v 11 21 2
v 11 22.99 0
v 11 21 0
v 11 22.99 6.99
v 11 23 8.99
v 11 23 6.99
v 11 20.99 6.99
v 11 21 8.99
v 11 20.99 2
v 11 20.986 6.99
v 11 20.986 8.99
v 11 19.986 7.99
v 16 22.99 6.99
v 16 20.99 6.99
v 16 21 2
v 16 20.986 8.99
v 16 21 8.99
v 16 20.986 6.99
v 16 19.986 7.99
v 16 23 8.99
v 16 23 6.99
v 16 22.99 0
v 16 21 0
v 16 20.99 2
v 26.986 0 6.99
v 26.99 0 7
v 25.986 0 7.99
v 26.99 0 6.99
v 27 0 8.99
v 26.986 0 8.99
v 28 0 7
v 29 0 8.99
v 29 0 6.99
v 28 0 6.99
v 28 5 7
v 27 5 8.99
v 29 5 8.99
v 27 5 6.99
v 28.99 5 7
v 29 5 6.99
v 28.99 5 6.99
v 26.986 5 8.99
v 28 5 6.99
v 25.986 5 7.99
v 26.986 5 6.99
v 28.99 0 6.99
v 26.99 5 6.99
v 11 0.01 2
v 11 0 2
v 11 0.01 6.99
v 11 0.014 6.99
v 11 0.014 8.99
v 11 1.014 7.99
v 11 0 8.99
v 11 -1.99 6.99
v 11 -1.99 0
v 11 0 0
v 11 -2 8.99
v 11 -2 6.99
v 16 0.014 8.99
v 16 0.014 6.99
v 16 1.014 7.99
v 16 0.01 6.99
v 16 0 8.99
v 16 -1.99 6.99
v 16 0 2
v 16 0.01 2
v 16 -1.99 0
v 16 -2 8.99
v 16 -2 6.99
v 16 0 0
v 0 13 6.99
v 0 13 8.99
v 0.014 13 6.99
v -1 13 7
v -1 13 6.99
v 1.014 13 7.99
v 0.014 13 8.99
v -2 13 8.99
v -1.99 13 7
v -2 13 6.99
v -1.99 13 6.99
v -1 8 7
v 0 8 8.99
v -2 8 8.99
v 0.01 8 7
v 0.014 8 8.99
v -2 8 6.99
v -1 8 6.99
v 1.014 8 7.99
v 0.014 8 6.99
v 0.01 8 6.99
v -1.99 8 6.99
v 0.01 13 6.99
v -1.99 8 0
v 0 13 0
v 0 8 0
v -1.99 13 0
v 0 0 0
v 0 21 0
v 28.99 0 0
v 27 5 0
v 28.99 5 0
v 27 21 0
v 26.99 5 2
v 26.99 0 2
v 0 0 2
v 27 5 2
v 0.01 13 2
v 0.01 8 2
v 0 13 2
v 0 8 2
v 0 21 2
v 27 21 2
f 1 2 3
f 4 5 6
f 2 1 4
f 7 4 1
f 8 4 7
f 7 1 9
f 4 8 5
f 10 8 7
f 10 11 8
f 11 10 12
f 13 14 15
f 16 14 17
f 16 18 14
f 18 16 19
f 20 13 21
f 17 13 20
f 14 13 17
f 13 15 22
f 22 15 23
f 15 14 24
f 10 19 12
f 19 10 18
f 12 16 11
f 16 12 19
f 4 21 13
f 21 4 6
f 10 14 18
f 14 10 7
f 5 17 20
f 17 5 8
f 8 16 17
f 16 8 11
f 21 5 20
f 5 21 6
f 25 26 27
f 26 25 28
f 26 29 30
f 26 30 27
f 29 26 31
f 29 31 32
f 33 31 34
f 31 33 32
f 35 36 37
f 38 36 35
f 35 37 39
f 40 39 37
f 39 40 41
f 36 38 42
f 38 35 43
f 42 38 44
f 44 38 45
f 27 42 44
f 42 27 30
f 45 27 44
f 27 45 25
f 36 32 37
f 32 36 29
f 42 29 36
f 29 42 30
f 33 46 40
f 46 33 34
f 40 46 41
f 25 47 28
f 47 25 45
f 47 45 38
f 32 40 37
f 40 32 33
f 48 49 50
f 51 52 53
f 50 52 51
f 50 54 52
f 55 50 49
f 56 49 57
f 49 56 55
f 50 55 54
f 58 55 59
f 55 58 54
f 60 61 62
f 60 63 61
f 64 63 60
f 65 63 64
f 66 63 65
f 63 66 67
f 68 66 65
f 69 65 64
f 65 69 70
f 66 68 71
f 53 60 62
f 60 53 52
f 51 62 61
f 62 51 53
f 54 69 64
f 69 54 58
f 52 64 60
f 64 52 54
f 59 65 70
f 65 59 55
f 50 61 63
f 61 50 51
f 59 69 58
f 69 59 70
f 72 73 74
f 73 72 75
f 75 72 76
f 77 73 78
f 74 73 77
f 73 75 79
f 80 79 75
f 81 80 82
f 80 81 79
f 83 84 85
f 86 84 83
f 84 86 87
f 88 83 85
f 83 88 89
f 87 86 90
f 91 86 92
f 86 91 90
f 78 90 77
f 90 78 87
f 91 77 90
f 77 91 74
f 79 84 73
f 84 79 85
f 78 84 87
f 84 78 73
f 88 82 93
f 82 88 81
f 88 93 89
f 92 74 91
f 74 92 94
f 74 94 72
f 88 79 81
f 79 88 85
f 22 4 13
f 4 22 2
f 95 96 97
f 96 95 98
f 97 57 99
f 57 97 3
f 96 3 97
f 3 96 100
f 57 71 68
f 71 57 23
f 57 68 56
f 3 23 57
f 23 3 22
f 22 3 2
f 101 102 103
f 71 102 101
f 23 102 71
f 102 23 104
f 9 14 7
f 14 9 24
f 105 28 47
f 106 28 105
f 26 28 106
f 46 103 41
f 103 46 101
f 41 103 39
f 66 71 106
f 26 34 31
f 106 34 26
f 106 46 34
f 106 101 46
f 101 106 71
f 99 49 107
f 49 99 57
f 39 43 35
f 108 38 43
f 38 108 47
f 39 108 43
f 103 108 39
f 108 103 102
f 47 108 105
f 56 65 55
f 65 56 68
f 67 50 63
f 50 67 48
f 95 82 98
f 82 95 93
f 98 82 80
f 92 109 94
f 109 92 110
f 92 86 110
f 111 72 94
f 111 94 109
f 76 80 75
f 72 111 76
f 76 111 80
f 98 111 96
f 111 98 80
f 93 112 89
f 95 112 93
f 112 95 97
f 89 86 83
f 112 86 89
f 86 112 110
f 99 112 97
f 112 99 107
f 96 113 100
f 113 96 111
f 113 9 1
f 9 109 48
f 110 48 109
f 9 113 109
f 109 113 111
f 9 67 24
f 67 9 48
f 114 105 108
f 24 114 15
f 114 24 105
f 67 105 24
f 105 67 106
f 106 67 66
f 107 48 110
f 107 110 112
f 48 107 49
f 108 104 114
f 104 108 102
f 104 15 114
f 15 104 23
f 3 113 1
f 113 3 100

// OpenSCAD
// file: ../../lib/utils.scad
// Cube with rounded corners
// roundedCornerCube (50,50,4);
module roundedCornerCube(length, width, thickness){

        hull()
        {
            translate([length/2 - 2, width/2 - 2, 0]) cylinder(r=2, h=thickness, $fn=50, center=true);
            translate([length/2 - 2, -width/2 + 2, 0]) cylinder(r=2, h=thickness, $fn=50, center=true);
            translate([-length/2 + 2, width/2 - 2, 0]) cylinder(r=2, h=thickness, $fn=50, center=true);
            translate([-length/2 + 2, -width/2 + 2, 0]) cylinder(r=2, h=thickness, $fn=50, center=true);
        }

}

// Hollow cube with rounded corners. Will look like a frame with rounded con
// hollowRoundedCornerCube(50,70,4,2);
module hollowRoundedCornerCube(length, width, thickness, wallthickness)
{
    difference()
    {
        roundedCornerCube(length,width,thickness);
        roundedCornerCube(length-(wallthickness*2),width-(wallthickness*2),thickness);
    }
}

/*
module cylinderWithHandle(radius, thickness)
{
    rotate_extrude($fn=100)
        polygon( points = [[0,0], [radius,0], [radius,thickness] , [1,thickness], [2,thickness + 2] , [2,thickness + 6],[0,thickness + 6]] );
}
*/


// hollow cylinder
// hollowCylinder(radius, height, wallThickness)
// radius : radius to outter wall
// wallThickness : Thickness of wall
module hollowCylinder(radius, height, wallThickness)
{

    difference()
    {
        cylinder(h=height, r1=radius, r2=radius);
        cylinder(h=height, r1=radius - wallThickness, r2=radius - wallThickness);
    }
}


// hollow cylinders
// hollowCylinders(20, 10, 2, 2, 2)
// radius : radius to outer wall
// gapsSize : size of gap between each rings
// minradius : radius of the smallest ring
module hollowCylinders(radius, height, wallThickness, gapSize, minRadius)
{
    for (i = [radius : -(gapSize + wallThickness) : minRadius])
    {
       //echo (i);
       hollowCylinder(i,height,wallThickness);
    }
}

//
// b = bottom diameter
// t = top diameter
// h = height
module cone(b, t, h)
{
    cylinder(h=h, r1=b/2, r2=t/2, $fn=100);
}

// hollowCone(10,4,20, 2)
module hollowCone(bottomRadius, topRadius, height, wallThickness)
{
    difference()
    {
        cylinder(h=height, r1=bottomRadius, r2=topRadius, $fn=100);
        cylinder(h=height, r1=bottomRadius - wallThickness, r2=topRadius - wallThickness, $fn=100);
    }
}


// w = width between flat surface
// h = height
module hex (w=10, h=2){
  cylinder (r=w/2, h=h, center=true, $fn=6);
}

// hollowCone(10,4,20, 2)
module hollowHex(w=10, h=2, th=2)
{
    difference()
    {
        cylinder (r=w/2, h=h, center=true, $fn=6);
        cylinder (r=w/2 - th, h=h, center=true, $fn=6);
    }
}

// h : height
// ns : number of sides for base
// br : bottom radius
// tr : top radius
// ro : rotation in degree between bottom and top
// sl : slice layer. high value give smooth appearence
module twistExtrude(h=50,ns=6,br=20,tr=20,ro=100,sl=5)
{

	linear_extrude(height = h, twist  = ro,	slices = sl, scale  = tr/br)
		circle(r=br, $fn=ns);
}


// h : height
// ns : number of sides for base
// br : bottom radius
// tr : top radius
// ro : rotation in degree between bottom and top
// sl : slice layer. high value give smooth appearence
// wt : wall thickness
module hollowTwistExtrude(h=50,ns=6,br=20,tr=20,ro=100,sl=5,wt=1)
{
	difference()
	{
		linear_extrude(height = h, twist  = ro,	slices = sl, scale  = tr/br)
			circle(r=br, $fn=ns);

    translate([0,0,-.01])
		linear_extrude(height = h + .1, twist  = ro,	slices = sl, scale  = tr/br)
			circle(r=br - wt, $fn=ns);
	}
}


///////////////////////////////////////////////////////////////////////////////////////////////////////////////////

// honeycomb tiles
// honeycombSquare(100,100,4,10,2);
module honeycombTiles(length, width,thickness,rad,wallThickness)
{
    //thickness = 4;
    //rad = 10;
    //wallThickness = 2;
    //length = 100;
    //width = 100;

    for (w=[0: width/rad])
    {

        if (w % 2 == 0)
        {
            //cylinder($fn=6, r=rad, h=2);
            for (i = [0 : length/((rad*2) + (wallThickness*2))])
            {
              translate([rad*(3*i) + (wallThickness*2)*i,w*rad,0]) cylinder($fn=6, r=rad, h=thickness);

              //translate([rad*6 + (wallThickness*2)*2,0,0]) cylinder($fn=6, r=10, h=2);
              //translate([rad*9 + (wallThickness*2)*3,0,0]) cylinder($fn=6, r=10, h=2);
            }
        }

        if (w % 2 == 1)
        {
            for (j = [1 : 2 : (length/(rad + wallThickness))])
            {
              translate([(rad*1.5) *j + wallThickness *j , (w*rad) + wallThickness/2 ,0])  cylinder($fn=6, r=rad, h=thickness);
                //translate([(rad*1.5) *3 + wallThickness *3 ,10,0]) circle($fn=6, r=10);
                //translate([(rad*1.5) *5 + wallThickness *5 ,10,0]) circle($fn=6, r=10);
            }
        }
    }
}

// honeycomb square
// A square area with hollow honeycomb design
// honeycombSquare(100,100,4,10,2);
module honeycombSquare(length, width, thickness, cellRad,wallThickness)
{
    difference()
    {
        cube([length,width,thickness], center=true);
        translate([-length/2,-width/2, -thickness/2]) honeycombTiles(length,width,thickness,cellRad,wallThickness);
    }
}

//honeycomb(length, width, height, cell_size, wall_thickness);
//honeycomb(50, 50, 4, 10, 1);
//hollowRoundedCornerCube(50,70,4,2);

//hollowCylinder(10,20,2);

//hollowCylinders(20, 10, 2, 2, 2);
//cone(10,2,20);

// hollowCone(10,4,20, 2);

// honeycombSquare(40,40,2,5,2);


module edgeClamp(l=10)
{
   difference()
   {
    translate([0,.6,0]) rotate([45,0,0]) cube([l,2,2], center=true);
    translate([0,.6,1.5]) cube([l + .1,1,1], center=true);
    translate([0,.6,-1.5]) cube([l + .1,1,1], center=true);
   }
   cube([l,2,2], center=true);
}

cube([10,2,2], center=true);
translate([0,0,2]) edgeClamp();
// main file
use <../../lib/utils.scad>

/*

measurements that fits snug when printed standalone
bl = 27; // base inside length
bw = 21; // base inside width
bt = 2; // base thickness

sh = 5; // side stop height
st = 2; // side stop Thickness
sw = 5; // side stop width
*/


// h = height
// wt = wall thickness
// sw = side stop width
// bl =  base inside length
// bw = base inside width
// bt = base thickness
module videoTx_sideStops(h,wt, sw, bl,bw,bt)
{

  //when in front view
  //top
  translate([(bl-sw)/2,bw - .01,0]) cube([sw,wt,h]);
  translate([bl/2,bw + 1,h + 1 - .01]) rotate([180,0,0]) edgeClamp(l=sw);

  // right
  translate([bl - .01,0,0]) cube([wt,sw,h]);
  translate([bl + 1,sw/2,h + 1 - .01]) rotate([0,0,90]) edgeClamp(l=sw);

  //bottom
  translate([(bl-sw)/2,-2 + .01,0]) cube([sw,wt,h]);
  translate([bl/2,-1,h + 1  - .01]) edgeClamp(l=sw);

  //left
  translate([-2 + .01,(bw - sw)/2,0]) cube([wt,sw,h]);
  translate([-1,bw/2,h + 1  - .01]) rotate([0,0,-90]) edgeClamp(l=sw);

}

module videoTx_holder(l=videoTx_holder_l(), w=videoTx_holder_w() ,h=videoTx_holder_h() ,  t=videoTx_holder_t() )
{
  //base
  cube([l,w,t]);
  videoTx_sideStops(h= (h + t),wt=2,sw=5 , bl=l , bw=w, bt=t);

  %alarm_sample();
}

module alarm_sample()
{
  translate([0,0,2]) cube([videoTx_holder_l(),videoTx_holder_w(),videoTx_holder_h()]);
  translate([videoTx_holder_l() -3,videoTx_holder_w() - 3,5]) rotate([0,90,0]) cylinder(h=10, r1=2, r2=2, $fn=50);
  translate([videoTx_holder_l() -3,videoTx_holder_w() - 3,5]) rotate([0,90,0]) cylinder(h=40, r1=1, r2=1, $fn=50);
}

function videoTx_holder_l() = 27;
function videoTx_holder_w() = 21;
function videoTx_holder_h() = 5;
function videoTx_holder_t() = 2;


videoTx_holder(l=videoTx_holder_l(), w=videoTx_holder_w() , h=videoTx_holder_h(), t=videoTx_holder_t());
